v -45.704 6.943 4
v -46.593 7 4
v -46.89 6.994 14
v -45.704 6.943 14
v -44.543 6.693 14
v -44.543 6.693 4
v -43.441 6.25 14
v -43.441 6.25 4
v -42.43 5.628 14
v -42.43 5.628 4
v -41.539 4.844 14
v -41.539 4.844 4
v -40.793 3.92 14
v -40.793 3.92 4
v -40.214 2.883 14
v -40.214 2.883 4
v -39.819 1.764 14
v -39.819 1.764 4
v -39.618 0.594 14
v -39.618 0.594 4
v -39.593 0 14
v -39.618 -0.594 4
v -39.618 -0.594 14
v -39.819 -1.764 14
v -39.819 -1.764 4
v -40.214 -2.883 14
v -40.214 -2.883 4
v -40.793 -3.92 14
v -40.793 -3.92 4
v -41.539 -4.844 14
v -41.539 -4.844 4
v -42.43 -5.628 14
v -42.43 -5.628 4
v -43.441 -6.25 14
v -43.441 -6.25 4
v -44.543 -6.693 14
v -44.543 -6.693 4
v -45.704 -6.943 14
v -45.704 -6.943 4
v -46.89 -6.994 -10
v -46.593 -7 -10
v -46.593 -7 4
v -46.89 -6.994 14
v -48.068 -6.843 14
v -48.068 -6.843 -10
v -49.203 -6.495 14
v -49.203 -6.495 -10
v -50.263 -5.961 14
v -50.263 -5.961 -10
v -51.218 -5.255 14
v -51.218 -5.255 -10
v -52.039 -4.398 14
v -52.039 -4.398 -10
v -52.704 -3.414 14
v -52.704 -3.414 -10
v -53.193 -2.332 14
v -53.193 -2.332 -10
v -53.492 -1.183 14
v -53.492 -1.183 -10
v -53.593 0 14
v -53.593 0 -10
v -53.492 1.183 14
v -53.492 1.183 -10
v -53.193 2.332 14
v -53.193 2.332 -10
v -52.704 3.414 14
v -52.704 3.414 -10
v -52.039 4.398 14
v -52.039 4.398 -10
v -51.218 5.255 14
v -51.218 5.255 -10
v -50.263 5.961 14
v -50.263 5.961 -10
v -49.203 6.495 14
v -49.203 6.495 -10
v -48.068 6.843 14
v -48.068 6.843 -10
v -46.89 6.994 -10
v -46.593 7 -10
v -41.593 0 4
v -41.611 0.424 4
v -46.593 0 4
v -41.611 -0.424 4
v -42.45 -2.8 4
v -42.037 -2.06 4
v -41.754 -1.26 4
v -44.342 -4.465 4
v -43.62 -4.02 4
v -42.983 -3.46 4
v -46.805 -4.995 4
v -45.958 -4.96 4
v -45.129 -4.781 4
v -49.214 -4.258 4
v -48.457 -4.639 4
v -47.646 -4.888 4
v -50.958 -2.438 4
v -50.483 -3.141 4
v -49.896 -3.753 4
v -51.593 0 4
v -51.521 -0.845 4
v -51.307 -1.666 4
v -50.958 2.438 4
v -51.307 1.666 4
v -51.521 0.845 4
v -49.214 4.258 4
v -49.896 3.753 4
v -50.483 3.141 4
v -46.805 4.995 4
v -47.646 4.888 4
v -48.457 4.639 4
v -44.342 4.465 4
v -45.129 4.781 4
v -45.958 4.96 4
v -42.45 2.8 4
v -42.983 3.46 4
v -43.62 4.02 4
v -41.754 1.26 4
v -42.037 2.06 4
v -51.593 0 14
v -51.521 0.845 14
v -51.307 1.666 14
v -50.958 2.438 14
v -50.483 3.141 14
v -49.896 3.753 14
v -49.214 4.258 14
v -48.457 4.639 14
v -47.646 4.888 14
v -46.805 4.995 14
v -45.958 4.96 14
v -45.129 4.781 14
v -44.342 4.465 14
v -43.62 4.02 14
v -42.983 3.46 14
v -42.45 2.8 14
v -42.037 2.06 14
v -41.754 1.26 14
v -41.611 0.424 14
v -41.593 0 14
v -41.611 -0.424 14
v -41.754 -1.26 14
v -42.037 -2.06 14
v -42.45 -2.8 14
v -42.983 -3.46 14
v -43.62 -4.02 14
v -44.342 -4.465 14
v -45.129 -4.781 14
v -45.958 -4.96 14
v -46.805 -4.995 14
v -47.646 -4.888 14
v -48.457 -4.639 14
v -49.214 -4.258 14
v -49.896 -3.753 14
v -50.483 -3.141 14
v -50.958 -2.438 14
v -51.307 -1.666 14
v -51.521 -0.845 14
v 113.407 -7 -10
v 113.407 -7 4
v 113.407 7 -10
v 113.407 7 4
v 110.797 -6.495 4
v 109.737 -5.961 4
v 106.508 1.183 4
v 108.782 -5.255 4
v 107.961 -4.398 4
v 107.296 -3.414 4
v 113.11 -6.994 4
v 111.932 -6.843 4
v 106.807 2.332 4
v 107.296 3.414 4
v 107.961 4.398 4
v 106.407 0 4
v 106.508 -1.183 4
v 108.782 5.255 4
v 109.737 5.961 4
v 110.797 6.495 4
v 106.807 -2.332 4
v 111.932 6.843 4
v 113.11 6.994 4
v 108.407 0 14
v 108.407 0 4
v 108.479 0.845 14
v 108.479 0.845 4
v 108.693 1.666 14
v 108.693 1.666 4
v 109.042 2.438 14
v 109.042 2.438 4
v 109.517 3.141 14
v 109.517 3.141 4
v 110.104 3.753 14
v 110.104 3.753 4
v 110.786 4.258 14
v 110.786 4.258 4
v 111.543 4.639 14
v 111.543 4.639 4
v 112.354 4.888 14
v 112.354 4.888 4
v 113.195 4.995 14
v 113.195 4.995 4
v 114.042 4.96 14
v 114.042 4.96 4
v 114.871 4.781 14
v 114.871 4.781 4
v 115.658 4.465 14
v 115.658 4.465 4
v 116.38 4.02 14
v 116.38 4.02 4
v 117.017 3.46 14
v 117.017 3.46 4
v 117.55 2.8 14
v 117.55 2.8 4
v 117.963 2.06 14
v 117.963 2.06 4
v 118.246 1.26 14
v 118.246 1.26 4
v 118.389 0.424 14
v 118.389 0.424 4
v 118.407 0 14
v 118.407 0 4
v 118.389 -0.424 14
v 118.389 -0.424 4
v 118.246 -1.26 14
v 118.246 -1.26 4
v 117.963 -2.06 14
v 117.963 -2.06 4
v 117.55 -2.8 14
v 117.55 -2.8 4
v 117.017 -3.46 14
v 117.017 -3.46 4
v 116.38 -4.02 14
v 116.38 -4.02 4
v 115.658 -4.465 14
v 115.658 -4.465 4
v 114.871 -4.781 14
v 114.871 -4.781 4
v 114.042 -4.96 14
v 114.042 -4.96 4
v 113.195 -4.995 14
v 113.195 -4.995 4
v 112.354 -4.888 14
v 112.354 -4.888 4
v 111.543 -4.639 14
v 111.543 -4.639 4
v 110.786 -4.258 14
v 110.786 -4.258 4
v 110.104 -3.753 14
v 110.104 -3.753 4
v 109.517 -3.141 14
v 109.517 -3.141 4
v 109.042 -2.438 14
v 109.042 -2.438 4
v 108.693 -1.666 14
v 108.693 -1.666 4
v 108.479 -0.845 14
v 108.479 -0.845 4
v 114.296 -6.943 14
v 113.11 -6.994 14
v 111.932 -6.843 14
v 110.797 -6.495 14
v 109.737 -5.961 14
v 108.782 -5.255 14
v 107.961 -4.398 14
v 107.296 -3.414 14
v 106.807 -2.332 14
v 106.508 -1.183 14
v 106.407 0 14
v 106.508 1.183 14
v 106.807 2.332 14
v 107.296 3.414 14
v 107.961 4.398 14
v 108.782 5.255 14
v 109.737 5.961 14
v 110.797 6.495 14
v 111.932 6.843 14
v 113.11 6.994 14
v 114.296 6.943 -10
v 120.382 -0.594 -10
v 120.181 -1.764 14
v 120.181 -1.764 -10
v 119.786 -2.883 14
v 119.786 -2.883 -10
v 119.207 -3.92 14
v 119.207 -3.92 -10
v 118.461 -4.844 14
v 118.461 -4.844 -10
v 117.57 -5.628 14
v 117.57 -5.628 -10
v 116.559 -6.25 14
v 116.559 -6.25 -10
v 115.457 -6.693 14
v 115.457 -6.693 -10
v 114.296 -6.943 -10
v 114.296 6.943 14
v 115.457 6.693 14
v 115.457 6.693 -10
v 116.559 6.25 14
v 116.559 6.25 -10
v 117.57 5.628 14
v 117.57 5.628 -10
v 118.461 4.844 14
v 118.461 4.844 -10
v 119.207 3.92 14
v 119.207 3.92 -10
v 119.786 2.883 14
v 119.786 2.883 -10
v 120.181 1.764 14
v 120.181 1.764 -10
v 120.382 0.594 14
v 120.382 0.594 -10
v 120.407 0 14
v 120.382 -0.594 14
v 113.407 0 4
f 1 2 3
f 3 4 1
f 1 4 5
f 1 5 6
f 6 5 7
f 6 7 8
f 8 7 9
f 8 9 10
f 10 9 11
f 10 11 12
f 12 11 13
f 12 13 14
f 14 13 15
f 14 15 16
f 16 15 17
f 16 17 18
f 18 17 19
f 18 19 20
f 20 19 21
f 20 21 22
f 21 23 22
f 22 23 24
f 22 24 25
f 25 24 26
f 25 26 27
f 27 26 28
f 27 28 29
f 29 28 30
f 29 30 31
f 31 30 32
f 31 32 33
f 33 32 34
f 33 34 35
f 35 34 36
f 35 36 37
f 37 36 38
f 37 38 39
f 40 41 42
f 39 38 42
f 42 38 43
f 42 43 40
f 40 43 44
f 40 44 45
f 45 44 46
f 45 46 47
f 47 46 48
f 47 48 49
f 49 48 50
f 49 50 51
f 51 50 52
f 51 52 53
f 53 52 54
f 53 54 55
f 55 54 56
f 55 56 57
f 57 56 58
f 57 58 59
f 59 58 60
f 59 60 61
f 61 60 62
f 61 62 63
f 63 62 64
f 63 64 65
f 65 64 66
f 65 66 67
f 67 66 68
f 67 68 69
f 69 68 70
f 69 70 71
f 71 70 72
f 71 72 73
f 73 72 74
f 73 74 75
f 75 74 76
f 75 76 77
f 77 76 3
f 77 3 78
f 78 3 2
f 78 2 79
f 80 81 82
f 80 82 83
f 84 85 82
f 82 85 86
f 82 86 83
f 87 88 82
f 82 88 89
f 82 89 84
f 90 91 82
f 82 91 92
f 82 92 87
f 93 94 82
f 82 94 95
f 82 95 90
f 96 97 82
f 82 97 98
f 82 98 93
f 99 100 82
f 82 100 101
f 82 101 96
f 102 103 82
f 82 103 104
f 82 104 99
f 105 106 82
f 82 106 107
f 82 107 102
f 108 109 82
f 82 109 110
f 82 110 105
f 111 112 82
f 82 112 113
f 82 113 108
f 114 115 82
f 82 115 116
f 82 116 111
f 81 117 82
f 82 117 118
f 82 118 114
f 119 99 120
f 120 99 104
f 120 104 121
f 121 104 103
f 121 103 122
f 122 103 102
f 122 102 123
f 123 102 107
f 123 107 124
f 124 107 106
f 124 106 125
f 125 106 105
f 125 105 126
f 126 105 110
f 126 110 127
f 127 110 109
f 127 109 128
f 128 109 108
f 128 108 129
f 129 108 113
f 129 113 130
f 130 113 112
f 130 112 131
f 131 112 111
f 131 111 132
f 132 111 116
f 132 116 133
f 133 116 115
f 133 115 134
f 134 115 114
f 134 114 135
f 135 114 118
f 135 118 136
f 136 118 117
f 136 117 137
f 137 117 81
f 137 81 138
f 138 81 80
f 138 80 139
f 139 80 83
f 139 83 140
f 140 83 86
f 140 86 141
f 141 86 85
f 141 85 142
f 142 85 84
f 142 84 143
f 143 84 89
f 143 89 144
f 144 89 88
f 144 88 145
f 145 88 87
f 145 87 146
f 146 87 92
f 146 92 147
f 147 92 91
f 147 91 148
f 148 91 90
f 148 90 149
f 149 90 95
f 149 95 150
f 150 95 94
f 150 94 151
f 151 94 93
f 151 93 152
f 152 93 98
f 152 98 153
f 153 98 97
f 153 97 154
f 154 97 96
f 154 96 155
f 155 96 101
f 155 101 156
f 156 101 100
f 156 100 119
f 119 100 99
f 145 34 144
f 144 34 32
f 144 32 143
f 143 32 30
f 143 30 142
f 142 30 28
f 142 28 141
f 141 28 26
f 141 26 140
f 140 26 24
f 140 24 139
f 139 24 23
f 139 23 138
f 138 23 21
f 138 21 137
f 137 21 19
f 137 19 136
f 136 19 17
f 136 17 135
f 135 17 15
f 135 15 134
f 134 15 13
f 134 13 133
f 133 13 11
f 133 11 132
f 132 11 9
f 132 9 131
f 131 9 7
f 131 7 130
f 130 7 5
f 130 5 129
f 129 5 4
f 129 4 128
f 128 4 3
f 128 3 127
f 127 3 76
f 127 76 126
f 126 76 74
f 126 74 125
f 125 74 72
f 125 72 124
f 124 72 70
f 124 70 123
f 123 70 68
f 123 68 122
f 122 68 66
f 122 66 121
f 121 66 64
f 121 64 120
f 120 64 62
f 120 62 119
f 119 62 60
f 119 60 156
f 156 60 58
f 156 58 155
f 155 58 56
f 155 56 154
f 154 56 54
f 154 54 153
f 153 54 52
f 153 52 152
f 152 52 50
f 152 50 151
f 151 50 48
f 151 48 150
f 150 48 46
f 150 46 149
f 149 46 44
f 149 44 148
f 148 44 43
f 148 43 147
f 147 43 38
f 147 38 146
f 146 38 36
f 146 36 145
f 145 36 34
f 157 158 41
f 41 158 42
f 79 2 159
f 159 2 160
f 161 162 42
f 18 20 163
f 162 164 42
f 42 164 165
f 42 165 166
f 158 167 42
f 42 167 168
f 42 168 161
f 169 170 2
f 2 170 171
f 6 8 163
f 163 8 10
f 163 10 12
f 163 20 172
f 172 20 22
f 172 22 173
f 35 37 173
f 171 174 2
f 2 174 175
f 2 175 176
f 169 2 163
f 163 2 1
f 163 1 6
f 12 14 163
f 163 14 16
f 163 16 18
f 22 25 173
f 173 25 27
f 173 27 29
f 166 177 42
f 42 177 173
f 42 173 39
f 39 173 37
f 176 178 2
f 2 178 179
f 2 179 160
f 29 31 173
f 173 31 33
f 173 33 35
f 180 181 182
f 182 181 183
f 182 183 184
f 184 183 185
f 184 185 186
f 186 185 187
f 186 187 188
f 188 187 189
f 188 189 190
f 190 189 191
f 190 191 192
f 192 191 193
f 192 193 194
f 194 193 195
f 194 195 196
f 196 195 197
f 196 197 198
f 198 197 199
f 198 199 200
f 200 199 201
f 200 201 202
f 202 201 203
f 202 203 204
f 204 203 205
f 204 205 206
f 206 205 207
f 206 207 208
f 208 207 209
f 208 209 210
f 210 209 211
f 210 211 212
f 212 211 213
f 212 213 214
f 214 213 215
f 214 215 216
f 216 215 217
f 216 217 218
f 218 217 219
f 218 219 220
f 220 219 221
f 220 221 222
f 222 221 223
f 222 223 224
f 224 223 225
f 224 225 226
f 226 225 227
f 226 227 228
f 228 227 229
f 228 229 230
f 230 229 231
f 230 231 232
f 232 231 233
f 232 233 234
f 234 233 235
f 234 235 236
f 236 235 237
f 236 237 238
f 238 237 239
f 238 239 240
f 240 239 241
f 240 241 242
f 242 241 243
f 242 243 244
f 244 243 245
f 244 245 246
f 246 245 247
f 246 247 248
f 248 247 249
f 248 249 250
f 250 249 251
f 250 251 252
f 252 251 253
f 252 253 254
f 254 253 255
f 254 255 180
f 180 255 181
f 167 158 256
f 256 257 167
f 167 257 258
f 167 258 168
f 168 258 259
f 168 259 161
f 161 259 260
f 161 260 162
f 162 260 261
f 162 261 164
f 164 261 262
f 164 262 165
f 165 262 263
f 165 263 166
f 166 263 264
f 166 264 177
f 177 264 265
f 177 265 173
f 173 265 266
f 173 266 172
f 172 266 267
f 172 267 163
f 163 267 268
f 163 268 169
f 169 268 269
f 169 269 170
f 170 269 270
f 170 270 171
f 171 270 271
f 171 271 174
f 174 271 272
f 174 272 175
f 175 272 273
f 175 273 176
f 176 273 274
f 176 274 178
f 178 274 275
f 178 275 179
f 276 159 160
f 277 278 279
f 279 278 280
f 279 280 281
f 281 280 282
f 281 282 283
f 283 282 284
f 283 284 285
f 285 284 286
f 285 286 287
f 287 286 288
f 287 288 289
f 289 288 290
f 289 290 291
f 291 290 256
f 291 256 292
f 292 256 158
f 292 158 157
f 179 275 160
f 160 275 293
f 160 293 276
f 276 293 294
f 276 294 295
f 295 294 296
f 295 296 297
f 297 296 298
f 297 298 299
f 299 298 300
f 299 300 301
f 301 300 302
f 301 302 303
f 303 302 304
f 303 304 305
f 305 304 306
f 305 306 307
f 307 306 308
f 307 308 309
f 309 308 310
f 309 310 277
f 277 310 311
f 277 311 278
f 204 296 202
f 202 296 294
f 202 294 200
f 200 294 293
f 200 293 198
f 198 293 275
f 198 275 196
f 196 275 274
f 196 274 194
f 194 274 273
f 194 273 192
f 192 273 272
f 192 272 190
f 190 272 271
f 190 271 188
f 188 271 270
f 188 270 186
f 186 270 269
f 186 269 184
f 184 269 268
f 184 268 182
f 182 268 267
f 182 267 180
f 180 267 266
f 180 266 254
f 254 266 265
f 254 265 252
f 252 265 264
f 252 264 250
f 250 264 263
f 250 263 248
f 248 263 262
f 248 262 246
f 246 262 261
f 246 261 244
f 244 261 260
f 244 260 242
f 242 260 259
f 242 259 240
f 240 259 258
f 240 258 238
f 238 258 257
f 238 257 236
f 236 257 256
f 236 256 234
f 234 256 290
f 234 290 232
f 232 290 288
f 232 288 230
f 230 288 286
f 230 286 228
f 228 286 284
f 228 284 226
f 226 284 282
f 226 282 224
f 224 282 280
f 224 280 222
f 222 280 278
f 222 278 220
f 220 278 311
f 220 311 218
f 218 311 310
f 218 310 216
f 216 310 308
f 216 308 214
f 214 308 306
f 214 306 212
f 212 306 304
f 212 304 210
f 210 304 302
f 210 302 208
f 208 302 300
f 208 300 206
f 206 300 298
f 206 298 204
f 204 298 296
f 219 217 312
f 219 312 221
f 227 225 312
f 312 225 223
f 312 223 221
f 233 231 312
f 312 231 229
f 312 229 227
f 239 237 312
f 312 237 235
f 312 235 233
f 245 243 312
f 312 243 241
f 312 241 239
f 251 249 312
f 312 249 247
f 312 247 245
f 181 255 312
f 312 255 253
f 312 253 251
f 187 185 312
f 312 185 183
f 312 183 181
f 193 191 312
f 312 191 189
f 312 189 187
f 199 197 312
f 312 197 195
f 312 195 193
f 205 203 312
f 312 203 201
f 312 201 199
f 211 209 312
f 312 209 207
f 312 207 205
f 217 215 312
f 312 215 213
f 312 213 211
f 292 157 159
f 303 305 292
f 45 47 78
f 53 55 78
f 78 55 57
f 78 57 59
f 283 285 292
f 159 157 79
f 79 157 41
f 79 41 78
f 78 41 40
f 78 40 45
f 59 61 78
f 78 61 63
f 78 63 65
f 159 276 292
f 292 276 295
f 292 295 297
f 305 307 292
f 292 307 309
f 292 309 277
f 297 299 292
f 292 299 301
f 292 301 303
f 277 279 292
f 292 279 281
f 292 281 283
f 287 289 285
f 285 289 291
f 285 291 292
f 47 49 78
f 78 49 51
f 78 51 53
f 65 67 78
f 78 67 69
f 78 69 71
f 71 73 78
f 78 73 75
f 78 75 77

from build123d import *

# Parameters (mm, degrees)
EXTRUDE_2_DEPTH   = 4
SKETCH_1_R        = 5
EXTRUDE_2_2_DEPTH = 4
EXTRUDE_2_3_DEPTH = 4
SKETCH_1_4_R      = 7
SKETCH_1_4_R_2    = 5
EXTRUDE_3_DEPTH   = 14
EXTRUDE_START     = 10
EXTRUDE_4_DEPTH   = 10


with BuildPart() as part:
    # 草图1 → 凸台-拉伸2 (new body)
    with BuildSketch(Plane.XY):
        with BuildLine():
            ThreePointArc((-46.592863908, 7), (-39.592863908, 0), (-46.592863908, -7))
            Line((-46.592863908, -7), (113.407136092, -7))
            ThreePointArc((113.407136092, -7), (106.407136092, 0), (113.407136092, 7))
            Line((113.407136092, 7), (-46.592863908, 7))
        make_face()
    extrude(amount=EXTRUDE_2_DEPTH)



with BuildPart() as body_2:
    # 草图1 → Extrude 2 2 (new body)
    with BuildSketch(Plane.XY):
        with Locations((-46.592863908, 0)):
            Circle(SKETCH_1_R)
    extrude(amount=EXTRUDE_2_2_DEPTH)


with BuildPart() as body_3:
    # 草图1 → Extrude 2 3 (new body)
    with BuildSketch(Plane.XY):
        with Locations((113.407136092, 0)):
            Circle(SKETCH_1_R)
    extrude(amount=EXTRUDE_2_3_DEPTH)


with BuildPart() as part_1:
    add(part.part)

    add(body_2.part)  # 凸台-拉伸3 merges body 2

    add(body_3.part)  # 凸台-拉伸3 merges body 3
    # 草图1<4> → 凸台-拉伸3 (add)
    # profile 1 of 2: a face of its own
    with BuildSketch(Plane.XY):
        with Locations((-46.592863908, 0)):
            Circle(SKETCH_1_4_R)
        with Locations((-46.592863908, 0)):
            Circle(SKETCH_1_4_R_2, mode=Mode.SUBTRACT)
    # profile 2 of 2: a face of its own
    with BuildSketch(Plane.XY):
        with Locations((113.407136092, 0)):
            Circle(SKETCH_1_4_R)
        with Locations((113.407136092, 0)):
            Circle(SKETCH_1_4_R_2, mode=Mode.SUBTRACT)
    extrude(amount=EXTRUDE_3_DEPTH)

    # 草图2 → 凸台-拉伸4 (add)
    with BuildSketch(Plane(origin=(0, 0, 0), x_dir=(-1, 0, 0), z_dir=(0, 0, -1)).offset(EXTRUDE_START)):
        with BuildLine():
            Line((46.592863908, 7), (-113.407136092, 7))
            ThreePointArc((-113.407136092, 7), (-120.407136092, 0), (-113.407136092, -7))
            Line((-113.407136092, -7), (46.592863908, -7))
            ThreePointArc((46.592863908, -7), (53.592863908, 0), (46.592863908, 7))
        make_face()
    extrude(amount=-EXTRUDE_4_DEPTH)


solid = part_1.part
